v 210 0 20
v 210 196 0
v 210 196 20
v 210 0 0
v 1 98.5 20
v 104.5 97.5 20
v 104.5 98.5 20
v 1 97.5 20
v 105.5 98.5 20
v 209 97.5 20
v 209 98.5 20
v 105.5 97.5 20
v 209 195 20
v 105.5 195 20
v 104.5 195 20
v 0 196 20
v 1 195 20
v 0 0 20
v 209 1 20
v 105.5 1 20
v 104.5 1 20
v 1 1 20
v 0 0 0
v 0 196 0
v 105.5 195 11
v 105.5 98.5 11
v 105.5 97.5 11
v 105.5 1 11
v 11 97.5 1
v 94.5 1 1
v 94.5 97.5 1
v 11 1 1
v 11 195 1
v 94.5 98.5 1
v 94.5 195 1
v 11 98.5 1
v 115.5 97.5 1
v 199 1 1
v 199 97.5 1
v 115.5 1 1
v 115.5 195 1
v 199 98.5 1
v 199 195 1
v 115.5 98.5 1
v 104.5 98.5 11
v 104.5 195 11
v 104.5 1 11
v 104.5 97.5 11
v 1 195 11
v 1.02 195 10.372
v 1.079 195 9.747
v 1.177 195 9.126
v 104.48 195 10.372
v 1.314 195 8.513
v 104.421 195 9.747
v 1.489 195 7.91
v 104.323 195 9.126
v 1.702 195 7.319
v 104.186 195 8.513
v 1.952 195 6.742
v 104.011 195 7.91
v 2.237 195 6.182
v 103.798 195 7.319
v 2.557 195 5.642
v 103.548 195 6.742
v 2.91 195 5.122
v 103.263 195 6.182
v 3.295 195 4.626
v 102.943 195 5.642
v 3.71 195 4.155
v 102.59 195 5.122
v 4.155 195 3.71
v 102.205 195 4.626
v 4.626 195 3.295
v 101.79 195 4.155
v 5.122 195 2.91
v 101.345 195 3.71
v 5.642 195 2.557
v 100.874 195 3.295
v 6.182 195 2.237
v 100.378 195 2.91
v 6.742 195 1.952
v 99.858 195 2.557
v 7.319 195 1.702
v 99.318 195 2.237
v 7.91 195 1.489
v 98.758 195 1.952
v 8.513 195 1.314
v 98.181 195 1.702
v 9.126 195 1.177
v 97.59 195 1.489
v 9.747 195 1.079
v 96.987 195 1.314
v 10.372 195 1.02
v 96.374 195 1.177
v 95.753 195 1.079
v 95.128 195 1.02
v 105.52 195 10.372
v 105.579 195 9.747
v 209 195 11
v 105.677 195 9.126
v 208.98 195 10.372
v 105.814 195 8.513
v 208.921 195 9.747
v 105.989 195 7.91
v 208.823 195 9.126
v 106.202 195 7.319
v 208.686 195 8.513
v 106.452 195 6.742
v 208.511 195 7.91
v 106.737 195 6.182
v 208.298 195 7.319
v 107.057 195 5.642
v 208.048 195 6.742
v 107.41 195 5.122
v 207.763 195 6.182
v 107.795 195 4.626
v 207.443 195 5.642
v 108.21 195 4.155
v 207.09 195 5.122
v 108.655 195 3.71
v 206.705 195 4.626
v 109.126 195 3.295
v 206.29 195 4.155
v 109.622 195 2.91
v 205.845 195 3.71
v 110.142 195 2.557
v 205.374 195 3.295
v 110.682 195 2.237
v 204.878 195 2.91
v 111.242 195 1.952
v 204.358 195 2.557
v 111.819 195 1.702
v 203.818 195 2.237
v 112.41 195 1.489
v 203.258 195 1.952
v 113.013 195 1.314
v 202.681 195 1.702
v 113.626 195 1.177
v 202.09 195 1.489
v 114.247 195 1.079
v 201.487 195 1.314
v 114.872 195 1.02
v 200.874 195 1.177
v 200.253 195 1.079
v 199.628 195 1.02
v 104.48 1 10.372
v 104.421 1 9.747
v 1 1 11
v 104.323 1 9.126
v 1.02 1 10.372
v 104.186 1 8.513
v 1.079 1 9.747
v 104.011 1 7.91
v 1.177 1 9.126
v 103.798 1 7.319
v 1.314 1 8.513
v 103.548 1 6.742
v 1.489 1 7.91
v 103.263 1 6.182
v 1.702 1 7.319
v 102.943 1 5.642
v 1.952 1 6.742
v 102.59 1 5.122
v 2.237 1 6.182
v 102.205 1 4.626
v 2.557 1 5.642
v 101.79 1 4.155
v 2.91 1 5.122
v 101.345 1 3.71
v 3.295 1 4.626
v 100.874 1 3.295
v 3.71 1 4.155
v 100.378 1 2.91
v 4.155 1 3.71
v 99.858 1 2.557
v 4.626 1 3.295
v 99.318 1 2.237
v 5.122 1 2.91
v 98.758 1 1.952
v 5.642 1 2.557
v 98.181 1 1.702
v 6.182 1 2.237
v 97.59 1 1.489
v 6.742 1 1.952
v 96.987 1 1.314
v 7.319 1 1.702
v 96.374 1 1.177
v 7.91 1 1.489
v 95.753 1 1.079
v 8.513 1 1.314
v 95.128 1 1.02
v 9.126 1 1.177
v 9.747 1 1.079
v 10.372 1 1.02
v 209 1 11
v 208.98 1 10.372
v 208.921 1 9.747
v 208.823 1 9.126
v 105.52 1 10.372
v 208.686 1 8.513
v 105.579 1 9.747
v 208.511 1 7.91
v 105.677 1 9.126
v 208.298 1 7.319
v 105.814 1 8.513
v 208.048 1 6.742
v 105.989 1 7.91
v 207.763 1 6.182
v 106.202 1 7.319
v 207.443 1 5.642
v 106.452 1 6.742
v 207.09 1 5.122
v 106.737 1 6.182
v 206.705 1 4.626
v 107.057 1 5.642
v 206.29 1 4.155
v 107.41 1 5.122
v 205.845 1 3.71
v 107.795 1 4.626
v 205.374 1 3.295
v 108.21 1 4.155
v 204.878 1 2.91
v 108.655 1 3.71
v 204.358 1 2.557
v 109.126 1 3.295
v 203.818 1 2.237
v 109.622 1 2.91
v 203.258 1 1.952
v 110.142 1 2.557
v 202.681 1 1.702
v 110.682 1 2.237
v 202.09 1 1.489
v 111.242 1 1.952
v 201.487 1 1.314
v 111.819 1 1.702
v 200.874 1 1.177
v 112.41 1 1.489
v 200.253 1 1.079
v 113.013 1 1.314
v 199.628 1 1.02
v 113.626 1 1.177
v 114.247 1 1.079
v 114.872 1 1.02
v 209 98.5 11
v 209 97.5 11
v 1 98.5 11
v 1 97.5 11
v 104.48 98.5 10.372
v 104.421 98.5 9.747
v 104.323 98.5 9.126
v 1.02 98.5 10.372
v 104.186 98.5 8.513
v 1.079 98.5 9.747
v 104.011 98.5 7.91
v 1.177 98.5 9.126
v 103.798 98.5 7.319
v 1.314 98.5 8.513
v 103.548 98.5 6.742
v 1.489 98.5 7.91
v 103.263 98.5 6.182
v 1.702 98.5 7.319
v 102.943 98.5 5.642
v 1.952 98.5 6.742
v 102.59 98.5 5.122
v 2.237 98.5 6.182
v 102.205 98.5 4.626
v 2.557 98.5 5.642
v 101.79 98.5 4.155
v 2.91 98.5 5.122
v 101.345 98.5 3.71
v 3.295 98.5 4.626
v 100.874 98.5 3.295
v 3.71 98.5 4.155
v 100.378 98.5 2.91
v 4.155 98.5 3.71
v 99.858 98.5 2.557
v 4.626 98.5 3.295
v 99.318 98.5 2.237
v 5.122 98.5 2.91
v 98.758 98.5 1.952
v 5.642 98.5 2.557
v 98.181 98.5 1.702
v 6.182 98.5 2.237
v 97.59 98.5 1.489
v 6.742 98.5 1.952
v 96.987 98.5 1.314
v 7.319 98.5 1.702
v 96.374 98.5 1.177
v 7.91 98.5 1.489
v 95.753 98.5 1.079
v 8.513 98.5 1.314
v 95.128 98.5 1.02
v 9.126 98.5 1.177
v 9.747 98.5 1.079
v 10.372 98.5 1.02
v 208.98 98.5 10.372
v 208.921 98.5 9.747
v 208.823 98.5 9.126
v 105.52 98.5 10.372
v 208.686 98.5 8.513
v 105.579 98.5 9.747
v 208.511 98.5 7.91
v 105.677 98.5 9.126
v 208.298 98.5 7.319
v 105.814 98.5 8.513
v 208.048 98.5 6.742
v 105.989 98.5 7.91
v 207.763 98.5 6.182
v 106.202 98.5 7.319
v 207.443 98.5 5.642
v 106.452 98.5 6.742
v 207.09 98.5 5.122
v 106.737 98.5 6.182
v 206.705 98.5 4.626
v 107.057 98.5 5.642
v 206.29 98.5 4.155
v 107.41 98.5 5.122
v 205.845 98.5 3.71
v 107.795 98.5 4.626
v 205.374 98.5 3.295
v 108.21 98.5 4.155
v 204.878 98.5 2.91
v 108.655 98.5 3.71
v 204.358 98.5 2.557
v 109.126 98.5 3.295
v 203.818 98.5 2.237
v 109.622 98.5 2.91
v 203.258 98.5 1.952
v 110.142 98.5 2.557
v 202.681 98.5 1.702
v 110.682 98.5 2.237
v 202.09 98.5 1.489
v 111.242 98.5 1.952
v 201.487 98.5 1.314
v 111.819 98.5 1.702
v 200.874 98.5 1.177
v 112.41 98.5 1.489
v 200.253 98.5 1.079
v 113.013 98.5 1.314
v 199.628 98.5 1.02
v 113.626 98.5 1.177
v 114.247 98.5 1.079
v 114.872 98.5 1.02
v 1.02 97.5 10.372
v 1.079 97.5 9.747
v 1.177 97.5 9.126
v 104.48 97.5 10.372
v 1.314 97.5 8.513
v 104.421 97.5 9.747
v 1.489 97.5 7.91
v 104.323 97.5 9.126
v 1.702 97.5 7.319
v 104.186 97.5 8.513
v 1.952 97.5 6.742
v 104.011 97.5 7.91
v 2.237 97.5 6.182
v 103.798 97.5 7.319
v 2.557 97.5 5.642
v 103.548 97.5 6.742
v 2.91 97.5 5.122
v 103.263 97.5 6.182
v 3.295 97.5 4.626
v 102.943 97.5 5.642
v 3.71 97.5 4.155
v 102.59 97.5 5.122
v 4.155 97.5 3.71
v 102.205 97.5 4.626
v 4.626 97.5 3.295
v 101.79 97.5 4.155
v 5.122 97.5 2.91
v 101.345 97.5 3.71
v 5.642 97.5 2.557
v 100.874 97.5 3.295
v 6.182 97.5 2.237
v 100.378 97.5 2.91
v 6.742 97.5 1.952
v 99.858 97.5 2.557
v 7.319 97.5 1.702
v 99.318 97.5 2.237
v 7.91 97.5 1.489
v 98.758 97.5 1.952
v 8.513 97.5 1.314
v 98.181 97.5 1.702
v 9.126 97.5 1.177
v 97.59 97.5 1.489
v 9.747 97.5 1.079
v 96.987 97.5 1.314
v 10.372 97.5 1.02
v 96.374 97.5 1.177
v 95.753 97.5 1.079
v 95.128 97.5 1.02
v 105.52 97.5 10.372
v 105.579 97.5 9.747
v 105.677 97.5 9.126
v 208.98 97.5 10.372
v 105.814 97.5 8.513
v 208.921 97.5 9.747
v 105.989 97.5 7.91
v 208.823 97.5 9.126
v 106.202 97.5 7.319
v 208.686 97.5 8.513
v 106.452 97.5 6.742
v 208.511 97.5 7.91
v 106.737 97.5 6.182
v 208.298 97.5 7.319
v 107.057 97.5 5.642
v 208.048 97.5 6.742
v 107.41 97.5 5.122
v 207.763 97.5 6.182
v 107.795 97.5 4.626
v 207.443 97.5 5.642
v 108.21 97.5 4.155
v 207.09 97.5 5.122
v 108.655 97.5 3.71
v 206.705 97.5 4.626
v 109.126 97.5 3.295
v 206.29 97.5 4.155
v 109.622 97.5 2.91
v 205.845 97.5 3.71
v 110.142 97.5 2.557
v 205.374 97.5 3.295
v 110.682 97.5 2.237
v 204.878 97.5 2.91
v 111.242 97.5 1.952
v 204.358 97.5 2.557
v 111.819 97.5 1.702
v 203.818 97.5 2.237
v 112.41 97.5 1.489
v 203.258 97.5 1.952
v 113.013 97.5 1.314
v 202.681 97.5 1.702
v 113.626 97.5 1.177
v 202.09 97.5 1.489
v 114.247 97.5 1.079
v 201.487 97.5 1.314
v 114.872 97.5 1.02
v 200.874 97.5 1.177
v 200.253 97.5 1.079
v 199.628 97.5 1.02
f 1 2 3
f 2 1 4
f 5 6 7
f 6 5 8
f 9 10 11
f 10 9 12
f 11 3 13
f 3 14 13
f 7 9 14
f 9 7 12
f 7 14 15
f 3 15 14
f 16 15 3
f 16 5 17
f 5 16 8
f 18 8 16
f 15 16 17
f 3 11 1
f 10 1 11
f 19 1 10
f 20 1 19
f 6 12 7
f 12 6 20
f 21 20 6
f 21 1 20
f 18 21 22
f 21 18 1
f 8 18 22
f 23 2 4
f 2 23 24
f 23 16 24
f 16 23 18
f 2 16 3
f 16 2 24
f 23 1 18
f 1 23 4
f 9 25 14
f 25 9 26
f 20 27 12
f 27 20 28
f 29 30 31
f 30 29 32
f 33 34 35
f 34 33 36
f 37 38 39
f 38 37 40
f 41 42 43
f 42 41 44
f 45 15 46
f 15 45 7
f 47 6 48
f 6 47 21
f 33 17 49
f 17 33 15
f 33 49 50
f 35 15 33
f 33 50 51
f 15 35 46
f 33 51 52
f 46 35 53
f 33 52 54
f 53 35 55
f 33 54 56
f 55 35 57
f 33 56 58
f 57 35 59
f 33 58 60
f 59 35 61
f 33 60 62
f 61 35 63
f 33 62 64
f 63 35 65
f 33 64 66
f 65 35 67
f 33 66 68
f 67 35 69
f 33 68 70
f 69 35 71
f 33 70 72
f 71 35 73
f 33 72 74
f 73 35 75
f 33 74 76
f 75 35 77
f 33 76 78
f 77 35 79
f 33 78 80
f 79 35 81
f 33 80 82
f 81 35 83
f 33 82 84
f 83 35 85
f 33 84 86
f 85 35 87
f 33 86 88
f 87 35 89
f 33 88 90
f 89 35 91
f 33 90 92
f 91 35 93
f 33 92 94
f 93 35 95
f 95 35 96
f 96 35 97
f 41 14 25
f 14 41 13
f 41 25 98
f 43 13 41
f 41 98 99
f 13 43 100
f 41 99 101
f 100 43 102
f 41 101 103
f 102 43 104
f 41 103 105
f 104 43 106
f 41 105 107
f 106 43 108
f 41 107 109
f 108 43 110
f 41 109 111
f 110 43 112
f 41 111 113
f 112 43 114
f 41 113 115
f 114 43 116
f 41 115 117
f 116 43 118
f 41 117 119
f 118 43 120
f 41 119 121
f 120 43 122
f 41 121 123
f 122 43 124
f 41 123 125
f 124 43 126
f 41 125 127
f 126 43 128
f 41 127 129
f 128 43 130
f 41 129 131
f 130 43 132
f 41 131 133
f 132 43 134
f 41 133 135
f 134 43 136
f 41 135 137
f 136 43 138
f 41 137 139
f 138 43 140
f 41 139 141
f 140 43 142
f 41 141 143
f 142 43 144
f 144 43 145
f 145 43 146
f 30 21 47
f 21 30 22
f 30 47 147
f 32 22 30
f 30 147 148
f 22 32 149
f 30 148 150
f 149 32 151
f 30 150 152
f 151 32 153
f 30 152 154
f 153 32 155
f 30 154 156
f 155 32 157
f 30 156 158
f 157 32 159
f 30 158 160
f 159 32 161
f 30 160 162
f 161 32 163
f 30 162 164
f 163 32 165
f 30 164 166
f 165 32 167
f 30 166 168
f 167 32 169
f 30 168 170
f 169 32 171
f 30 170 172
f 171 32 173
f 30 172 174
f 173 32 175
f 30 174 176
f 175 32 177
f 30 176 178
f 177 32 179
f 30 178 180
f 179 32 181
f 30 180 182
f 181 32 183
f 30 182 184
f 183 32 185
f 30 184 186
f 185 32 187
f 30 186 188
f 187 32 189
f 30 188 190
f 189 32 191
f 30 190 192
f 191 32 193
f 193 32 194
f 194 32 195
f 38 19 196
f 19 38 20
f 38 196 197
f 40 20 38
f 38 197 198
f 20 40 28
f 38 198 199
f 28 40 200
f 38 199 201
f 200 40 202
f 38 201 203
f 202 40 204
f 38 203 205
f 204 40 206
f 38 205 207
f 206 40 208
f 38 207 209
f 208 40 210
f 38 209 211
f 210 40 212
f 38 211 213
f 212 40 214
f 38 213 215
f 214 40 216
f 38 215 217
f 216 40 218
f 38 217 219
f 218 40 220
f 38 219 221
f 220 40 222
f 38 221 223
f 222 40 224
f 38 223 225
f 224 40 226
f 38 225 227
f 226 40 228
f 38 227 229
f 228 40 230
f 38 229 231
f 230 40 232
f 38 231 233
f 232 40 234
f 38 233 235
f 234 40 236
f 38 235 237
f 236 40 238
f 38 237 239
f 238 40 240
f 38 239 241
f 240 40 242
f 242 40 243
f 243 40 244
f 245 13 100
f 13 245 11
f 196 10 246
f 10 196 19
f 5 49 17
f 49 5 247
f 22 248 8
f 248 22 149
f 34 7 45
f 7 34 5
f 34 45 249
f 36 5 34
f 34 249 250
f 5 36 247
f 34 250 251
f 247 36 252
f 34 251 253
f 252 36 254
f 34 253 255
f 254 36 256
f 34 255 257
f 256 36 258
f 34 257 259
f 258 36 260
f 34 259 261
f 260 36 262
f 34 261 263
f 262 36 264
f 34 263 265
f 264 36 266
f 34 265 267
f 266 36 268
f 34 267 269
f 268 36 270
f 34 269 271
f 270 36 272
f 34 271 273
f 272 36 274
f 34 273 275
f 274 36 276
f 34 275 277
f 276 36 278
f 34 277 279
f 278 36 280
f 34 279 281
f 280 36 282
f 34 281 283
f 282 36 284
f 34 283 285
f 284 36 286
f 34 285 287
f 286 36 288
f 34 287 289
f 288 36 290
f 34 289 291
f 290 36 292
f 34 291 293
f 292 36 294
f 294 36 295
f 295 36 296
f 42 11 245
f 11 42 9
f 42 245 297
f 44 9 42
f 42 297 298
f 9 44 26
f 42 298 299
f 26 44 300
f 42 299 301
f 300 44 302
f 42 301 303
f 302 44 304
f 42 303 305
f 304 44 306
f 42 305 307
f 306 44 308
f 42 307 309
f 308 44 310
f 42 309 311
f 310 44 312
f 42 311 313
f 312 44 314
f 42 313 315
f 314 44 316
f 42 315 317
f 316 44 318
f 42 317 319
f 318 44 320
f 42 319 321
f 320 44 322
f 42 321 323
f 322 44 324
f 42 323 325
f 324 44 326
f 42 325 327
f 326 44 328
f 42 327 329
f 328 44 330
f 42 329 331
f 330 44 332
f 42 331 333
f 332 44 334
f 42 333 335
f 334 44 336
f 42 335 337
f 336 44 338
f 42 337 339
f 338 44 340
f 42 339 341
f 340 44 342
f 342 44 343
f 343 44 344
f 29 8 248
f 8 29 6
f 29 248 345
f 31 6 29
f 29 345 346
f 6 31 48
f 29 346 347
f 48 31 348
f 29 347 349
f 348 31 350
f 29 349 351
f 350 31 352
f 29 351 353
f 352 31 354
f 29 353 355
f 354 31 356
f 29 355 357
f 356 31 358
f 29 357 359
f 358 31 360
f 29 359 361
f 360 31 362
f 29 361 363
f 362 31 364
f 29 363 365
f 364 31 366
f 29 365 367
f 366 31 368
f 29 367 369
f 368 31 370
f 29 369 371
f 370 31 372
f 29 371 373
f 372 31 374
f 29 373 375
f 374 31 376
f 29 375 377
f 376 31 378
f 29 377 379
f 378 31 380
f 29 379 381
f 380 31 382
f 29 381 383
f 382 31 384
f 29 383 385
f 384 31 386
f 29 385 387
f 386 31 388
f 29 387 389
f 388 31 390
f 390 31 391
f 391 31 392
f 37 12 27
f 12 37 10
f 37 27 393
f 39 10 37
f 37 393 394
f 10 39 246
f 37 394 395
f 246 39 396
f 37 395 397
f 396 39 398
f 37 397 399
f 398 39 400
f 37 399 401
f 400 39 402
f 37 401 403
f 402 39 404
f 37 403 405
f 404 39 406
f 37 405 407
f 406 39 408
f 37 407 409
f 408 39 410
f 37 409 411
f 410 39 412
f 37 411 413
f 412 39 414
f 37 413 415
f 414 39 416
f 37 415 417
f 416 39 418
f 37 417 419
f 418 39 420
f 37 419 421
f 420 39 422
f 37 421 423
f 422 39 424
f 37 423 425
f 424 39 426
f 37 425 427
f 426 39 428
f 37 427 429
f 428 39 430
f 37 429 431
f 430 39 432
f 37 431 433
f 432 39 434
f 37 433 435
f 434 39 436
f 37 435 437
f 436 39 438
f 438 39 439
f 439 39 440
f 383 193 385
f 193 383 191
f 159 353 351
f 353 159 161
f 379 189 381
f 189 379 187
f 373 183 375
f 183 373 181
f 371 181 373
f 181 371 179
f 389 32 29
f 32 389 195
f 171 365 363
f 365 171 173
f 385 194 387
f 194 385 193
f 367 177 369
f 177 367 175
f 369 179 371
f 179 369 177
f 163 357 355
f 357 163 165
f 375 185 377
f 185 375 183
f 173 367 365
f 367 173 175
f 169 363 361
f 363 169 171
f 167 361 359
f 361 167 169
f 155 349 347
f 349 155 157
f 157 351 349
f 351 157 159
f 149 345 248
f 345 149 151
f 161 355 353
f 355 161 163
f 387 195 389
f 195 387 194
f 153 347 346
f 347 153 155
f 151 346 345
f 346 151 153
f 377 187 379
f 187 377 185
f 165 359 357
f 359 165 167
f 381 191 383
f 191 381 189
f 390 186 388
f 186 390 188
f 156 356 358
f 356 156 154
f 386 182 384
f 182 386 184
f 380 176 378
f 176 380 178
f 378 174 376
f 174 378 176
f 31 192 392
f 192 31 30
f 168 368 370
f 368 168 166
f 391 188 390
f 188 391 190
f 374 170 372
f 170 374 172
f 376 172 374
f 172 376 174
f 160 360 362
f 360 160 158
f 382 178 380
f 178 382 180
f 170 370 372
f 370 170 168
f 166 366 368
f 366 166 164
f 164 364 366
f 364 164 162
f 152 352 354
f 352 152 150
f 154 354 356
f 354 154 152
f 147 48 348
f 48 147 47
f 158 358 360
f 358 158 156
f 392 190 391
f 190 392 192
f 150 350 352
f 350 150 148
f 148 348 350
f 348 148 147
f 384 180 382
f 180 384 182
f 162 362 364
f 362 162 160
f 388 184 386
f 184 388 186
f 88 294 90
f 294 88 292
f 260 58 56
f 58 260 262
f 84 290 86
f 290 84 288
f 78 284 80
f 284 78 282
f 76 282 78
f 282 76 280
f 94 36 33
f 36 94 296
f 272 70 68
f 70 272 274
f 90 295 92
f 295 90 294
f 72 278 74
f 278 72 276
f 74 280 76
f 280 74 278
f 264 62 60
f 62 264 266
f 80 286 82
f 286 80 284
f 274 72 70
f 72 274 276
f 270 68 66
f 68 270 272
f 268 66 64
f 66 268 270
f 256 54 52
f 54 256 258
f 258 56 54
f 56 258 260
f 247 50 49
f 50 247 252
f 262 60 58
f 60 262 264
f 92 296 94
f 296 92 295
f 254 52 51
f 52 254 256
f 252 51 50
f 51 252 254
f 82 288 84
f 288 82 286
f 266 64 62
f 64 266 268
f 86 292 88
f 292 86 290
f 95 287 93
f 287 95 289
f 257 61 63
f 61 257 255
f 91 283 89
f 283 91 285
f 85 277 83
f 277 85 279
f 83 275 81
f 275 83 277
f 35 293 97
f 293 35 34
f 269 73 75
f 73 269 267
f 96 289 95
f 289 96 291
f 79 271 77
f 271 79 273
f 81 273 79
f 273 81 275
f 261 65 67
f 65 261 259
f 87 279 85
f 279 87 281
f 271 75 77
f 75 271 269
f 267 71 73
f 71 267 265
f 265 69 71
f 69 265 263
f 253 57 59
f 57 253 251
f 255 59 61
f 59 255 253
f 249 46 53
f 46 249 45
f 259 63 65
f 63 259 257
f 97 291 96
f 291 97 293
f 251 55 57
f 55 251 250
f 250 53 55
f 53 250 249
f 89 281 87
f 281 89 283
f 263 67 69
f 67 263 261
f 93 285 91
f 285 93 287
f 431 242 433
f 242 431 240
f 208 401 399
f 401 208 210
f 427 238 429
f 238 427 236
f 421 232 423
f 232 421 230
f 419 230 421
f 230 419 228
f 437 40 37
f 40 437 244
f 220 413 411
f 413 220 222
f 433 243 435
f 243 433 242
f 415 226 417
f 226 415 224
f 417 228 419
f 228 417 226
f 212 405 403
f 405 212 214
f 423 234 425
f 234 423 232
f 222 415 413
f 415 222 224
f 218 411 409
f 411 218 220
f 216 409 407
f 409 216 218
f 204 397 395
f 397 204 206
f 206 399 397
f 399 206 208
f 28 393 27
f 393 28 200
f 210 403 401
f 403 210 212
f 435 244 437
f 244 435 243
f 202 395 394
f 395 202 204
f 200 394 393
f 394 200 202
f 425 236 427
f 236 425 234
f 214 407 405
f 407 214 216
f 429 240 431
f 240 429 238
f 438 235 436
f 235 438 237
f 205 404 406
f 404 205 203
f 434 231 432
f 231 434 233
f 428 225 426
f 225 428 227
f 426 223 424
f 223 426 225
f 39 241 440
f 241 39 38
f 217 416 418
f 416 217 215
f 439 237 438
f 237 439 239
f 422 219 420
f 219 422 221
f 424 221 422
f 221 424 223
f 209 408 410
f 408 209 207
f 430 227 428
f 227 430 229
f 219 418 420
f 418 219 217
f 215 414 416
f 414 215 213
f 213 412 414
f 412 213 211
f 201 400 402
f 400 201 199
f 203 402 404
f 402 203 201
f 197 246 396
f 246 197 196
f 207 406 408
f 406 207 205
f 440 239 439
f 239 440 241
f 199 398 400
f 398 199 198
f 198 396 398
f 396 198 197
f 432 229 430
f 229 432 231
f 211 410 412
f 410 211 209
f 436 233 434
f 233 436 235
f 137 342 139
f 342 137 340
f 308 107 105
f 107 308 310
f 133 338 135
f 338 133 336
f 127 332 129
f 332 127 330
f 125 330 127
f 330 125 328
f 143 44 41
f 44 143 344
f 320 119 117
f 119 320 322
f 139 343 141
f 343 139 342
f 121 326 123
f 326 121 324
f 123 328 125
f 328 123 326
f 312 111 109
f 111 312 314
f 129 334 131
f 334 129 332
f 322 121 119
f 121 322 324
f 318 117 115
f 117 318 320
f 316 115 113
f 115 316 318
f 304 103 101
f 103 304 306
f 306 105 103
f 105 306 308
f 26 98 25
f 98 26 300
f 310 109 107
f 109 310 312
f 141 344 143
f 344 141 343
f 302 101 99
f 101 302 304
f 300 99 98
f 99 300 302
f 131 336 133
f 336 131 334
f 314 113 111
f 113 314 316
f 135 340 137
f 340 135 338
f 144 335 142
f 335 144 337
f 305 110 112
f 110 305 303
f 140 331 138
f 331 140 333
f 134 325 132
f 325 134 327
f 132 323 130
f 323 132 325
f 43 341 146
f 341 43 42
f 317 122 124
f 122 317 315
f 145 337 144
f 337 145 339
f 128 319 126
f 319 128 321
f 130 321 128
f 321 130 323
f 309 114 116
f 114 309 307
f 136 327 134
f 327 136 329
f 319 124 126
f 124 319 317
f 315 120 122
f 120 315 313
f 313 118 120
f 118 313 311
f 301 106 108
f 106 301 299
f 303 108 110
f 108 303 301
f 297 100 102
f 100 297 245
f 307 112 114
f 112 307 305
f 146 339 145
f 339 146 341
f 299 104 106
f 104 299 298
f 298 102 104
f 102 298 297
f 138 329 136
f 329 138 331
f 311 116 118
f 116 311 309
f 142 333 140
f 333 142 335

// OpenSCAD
include <boardgame_insert_toolkit_lib.2.scad>;

// determines whether lids are output.
g_b_print_lid = true;

// determines whether boxes are output.
g_b_print_box = true; 

// Focus on one box
g_isolated_print_box = ""; 

// Used to visualize how all of the boxes fit together. 
g_b_visualization = false;          
        
// this is the outer wall thickness. 
//Default = 1.5mm
g_wall_thickness = 1.0;

// The tolerance value is extra space put between planes of the lid and box that fit together.
// Increase the tolerance to loosen the fit and decrease it to tighten it.
//
// Note that the tolerance is applied exclusively to the lid.
// So if the lid is too tight or too loose, change this value ( up for looser fit, down for tighter fit ) and 
// you only need to reprint the lid.
// 
// The exception is the stackable box, where the bottom of the box is the lid of the box below,
// in which case the tolerance also affects that box bottom.
//
g_tolerance = 0.15;

// This adjusts the position of the lid detents downward. 
// The larger the value, the bigger the gap between the lid and the box.
g_tolerance_detents_pos = 0.1;

aw_size_x = 210.0;
aw_size_y = 196.0;
aw_size_z = 20.0;


data =
  [
    [
      "simple box",
      [
        [ BOX_SIZE_XYZ, [aw_size_x, aw_size_y, aw_size_z] ],
        [ BOX_NO_LID_B, t],
        [
          BOX_COMPONENT,
          [
            [
              CMP_COMPARTMENT_SIZE_XYZ,
              [
                (aw_size_x - 3.0) / 2.0,
                (aw_size_y - 3.0) / 2.0,
                aw_size_z - g_wall_thickness
              ]
            ],
            [ CMP_NUM_COMPARTMENTS_XY, [2, 2] ],
            //[ CMP_FILLET_RADIUS, 5.0 ],
            [ POSITION_XY, [0, 0] ],
            //[ CMP_CUTOUT_SIDES_4B,   [f,f,f,f]],
            //[ CMP_CUTOUT_DEPTH_PCT,  20],
            //[ CMP_CUTOUT_WIDTH_PCT,  50],
            //[ CMP_CUTOUT_HEIGHT_PCT, 100], 
            //[ CMP_SHAPE_ROTATED_B, t ],
            [ CMP_SHAPE, FILLET ],
            [ CMP_FILLET_RADIUS, 10.0 ],
          ]
        ],
      ]
    ]
  ];

MakeAll();
